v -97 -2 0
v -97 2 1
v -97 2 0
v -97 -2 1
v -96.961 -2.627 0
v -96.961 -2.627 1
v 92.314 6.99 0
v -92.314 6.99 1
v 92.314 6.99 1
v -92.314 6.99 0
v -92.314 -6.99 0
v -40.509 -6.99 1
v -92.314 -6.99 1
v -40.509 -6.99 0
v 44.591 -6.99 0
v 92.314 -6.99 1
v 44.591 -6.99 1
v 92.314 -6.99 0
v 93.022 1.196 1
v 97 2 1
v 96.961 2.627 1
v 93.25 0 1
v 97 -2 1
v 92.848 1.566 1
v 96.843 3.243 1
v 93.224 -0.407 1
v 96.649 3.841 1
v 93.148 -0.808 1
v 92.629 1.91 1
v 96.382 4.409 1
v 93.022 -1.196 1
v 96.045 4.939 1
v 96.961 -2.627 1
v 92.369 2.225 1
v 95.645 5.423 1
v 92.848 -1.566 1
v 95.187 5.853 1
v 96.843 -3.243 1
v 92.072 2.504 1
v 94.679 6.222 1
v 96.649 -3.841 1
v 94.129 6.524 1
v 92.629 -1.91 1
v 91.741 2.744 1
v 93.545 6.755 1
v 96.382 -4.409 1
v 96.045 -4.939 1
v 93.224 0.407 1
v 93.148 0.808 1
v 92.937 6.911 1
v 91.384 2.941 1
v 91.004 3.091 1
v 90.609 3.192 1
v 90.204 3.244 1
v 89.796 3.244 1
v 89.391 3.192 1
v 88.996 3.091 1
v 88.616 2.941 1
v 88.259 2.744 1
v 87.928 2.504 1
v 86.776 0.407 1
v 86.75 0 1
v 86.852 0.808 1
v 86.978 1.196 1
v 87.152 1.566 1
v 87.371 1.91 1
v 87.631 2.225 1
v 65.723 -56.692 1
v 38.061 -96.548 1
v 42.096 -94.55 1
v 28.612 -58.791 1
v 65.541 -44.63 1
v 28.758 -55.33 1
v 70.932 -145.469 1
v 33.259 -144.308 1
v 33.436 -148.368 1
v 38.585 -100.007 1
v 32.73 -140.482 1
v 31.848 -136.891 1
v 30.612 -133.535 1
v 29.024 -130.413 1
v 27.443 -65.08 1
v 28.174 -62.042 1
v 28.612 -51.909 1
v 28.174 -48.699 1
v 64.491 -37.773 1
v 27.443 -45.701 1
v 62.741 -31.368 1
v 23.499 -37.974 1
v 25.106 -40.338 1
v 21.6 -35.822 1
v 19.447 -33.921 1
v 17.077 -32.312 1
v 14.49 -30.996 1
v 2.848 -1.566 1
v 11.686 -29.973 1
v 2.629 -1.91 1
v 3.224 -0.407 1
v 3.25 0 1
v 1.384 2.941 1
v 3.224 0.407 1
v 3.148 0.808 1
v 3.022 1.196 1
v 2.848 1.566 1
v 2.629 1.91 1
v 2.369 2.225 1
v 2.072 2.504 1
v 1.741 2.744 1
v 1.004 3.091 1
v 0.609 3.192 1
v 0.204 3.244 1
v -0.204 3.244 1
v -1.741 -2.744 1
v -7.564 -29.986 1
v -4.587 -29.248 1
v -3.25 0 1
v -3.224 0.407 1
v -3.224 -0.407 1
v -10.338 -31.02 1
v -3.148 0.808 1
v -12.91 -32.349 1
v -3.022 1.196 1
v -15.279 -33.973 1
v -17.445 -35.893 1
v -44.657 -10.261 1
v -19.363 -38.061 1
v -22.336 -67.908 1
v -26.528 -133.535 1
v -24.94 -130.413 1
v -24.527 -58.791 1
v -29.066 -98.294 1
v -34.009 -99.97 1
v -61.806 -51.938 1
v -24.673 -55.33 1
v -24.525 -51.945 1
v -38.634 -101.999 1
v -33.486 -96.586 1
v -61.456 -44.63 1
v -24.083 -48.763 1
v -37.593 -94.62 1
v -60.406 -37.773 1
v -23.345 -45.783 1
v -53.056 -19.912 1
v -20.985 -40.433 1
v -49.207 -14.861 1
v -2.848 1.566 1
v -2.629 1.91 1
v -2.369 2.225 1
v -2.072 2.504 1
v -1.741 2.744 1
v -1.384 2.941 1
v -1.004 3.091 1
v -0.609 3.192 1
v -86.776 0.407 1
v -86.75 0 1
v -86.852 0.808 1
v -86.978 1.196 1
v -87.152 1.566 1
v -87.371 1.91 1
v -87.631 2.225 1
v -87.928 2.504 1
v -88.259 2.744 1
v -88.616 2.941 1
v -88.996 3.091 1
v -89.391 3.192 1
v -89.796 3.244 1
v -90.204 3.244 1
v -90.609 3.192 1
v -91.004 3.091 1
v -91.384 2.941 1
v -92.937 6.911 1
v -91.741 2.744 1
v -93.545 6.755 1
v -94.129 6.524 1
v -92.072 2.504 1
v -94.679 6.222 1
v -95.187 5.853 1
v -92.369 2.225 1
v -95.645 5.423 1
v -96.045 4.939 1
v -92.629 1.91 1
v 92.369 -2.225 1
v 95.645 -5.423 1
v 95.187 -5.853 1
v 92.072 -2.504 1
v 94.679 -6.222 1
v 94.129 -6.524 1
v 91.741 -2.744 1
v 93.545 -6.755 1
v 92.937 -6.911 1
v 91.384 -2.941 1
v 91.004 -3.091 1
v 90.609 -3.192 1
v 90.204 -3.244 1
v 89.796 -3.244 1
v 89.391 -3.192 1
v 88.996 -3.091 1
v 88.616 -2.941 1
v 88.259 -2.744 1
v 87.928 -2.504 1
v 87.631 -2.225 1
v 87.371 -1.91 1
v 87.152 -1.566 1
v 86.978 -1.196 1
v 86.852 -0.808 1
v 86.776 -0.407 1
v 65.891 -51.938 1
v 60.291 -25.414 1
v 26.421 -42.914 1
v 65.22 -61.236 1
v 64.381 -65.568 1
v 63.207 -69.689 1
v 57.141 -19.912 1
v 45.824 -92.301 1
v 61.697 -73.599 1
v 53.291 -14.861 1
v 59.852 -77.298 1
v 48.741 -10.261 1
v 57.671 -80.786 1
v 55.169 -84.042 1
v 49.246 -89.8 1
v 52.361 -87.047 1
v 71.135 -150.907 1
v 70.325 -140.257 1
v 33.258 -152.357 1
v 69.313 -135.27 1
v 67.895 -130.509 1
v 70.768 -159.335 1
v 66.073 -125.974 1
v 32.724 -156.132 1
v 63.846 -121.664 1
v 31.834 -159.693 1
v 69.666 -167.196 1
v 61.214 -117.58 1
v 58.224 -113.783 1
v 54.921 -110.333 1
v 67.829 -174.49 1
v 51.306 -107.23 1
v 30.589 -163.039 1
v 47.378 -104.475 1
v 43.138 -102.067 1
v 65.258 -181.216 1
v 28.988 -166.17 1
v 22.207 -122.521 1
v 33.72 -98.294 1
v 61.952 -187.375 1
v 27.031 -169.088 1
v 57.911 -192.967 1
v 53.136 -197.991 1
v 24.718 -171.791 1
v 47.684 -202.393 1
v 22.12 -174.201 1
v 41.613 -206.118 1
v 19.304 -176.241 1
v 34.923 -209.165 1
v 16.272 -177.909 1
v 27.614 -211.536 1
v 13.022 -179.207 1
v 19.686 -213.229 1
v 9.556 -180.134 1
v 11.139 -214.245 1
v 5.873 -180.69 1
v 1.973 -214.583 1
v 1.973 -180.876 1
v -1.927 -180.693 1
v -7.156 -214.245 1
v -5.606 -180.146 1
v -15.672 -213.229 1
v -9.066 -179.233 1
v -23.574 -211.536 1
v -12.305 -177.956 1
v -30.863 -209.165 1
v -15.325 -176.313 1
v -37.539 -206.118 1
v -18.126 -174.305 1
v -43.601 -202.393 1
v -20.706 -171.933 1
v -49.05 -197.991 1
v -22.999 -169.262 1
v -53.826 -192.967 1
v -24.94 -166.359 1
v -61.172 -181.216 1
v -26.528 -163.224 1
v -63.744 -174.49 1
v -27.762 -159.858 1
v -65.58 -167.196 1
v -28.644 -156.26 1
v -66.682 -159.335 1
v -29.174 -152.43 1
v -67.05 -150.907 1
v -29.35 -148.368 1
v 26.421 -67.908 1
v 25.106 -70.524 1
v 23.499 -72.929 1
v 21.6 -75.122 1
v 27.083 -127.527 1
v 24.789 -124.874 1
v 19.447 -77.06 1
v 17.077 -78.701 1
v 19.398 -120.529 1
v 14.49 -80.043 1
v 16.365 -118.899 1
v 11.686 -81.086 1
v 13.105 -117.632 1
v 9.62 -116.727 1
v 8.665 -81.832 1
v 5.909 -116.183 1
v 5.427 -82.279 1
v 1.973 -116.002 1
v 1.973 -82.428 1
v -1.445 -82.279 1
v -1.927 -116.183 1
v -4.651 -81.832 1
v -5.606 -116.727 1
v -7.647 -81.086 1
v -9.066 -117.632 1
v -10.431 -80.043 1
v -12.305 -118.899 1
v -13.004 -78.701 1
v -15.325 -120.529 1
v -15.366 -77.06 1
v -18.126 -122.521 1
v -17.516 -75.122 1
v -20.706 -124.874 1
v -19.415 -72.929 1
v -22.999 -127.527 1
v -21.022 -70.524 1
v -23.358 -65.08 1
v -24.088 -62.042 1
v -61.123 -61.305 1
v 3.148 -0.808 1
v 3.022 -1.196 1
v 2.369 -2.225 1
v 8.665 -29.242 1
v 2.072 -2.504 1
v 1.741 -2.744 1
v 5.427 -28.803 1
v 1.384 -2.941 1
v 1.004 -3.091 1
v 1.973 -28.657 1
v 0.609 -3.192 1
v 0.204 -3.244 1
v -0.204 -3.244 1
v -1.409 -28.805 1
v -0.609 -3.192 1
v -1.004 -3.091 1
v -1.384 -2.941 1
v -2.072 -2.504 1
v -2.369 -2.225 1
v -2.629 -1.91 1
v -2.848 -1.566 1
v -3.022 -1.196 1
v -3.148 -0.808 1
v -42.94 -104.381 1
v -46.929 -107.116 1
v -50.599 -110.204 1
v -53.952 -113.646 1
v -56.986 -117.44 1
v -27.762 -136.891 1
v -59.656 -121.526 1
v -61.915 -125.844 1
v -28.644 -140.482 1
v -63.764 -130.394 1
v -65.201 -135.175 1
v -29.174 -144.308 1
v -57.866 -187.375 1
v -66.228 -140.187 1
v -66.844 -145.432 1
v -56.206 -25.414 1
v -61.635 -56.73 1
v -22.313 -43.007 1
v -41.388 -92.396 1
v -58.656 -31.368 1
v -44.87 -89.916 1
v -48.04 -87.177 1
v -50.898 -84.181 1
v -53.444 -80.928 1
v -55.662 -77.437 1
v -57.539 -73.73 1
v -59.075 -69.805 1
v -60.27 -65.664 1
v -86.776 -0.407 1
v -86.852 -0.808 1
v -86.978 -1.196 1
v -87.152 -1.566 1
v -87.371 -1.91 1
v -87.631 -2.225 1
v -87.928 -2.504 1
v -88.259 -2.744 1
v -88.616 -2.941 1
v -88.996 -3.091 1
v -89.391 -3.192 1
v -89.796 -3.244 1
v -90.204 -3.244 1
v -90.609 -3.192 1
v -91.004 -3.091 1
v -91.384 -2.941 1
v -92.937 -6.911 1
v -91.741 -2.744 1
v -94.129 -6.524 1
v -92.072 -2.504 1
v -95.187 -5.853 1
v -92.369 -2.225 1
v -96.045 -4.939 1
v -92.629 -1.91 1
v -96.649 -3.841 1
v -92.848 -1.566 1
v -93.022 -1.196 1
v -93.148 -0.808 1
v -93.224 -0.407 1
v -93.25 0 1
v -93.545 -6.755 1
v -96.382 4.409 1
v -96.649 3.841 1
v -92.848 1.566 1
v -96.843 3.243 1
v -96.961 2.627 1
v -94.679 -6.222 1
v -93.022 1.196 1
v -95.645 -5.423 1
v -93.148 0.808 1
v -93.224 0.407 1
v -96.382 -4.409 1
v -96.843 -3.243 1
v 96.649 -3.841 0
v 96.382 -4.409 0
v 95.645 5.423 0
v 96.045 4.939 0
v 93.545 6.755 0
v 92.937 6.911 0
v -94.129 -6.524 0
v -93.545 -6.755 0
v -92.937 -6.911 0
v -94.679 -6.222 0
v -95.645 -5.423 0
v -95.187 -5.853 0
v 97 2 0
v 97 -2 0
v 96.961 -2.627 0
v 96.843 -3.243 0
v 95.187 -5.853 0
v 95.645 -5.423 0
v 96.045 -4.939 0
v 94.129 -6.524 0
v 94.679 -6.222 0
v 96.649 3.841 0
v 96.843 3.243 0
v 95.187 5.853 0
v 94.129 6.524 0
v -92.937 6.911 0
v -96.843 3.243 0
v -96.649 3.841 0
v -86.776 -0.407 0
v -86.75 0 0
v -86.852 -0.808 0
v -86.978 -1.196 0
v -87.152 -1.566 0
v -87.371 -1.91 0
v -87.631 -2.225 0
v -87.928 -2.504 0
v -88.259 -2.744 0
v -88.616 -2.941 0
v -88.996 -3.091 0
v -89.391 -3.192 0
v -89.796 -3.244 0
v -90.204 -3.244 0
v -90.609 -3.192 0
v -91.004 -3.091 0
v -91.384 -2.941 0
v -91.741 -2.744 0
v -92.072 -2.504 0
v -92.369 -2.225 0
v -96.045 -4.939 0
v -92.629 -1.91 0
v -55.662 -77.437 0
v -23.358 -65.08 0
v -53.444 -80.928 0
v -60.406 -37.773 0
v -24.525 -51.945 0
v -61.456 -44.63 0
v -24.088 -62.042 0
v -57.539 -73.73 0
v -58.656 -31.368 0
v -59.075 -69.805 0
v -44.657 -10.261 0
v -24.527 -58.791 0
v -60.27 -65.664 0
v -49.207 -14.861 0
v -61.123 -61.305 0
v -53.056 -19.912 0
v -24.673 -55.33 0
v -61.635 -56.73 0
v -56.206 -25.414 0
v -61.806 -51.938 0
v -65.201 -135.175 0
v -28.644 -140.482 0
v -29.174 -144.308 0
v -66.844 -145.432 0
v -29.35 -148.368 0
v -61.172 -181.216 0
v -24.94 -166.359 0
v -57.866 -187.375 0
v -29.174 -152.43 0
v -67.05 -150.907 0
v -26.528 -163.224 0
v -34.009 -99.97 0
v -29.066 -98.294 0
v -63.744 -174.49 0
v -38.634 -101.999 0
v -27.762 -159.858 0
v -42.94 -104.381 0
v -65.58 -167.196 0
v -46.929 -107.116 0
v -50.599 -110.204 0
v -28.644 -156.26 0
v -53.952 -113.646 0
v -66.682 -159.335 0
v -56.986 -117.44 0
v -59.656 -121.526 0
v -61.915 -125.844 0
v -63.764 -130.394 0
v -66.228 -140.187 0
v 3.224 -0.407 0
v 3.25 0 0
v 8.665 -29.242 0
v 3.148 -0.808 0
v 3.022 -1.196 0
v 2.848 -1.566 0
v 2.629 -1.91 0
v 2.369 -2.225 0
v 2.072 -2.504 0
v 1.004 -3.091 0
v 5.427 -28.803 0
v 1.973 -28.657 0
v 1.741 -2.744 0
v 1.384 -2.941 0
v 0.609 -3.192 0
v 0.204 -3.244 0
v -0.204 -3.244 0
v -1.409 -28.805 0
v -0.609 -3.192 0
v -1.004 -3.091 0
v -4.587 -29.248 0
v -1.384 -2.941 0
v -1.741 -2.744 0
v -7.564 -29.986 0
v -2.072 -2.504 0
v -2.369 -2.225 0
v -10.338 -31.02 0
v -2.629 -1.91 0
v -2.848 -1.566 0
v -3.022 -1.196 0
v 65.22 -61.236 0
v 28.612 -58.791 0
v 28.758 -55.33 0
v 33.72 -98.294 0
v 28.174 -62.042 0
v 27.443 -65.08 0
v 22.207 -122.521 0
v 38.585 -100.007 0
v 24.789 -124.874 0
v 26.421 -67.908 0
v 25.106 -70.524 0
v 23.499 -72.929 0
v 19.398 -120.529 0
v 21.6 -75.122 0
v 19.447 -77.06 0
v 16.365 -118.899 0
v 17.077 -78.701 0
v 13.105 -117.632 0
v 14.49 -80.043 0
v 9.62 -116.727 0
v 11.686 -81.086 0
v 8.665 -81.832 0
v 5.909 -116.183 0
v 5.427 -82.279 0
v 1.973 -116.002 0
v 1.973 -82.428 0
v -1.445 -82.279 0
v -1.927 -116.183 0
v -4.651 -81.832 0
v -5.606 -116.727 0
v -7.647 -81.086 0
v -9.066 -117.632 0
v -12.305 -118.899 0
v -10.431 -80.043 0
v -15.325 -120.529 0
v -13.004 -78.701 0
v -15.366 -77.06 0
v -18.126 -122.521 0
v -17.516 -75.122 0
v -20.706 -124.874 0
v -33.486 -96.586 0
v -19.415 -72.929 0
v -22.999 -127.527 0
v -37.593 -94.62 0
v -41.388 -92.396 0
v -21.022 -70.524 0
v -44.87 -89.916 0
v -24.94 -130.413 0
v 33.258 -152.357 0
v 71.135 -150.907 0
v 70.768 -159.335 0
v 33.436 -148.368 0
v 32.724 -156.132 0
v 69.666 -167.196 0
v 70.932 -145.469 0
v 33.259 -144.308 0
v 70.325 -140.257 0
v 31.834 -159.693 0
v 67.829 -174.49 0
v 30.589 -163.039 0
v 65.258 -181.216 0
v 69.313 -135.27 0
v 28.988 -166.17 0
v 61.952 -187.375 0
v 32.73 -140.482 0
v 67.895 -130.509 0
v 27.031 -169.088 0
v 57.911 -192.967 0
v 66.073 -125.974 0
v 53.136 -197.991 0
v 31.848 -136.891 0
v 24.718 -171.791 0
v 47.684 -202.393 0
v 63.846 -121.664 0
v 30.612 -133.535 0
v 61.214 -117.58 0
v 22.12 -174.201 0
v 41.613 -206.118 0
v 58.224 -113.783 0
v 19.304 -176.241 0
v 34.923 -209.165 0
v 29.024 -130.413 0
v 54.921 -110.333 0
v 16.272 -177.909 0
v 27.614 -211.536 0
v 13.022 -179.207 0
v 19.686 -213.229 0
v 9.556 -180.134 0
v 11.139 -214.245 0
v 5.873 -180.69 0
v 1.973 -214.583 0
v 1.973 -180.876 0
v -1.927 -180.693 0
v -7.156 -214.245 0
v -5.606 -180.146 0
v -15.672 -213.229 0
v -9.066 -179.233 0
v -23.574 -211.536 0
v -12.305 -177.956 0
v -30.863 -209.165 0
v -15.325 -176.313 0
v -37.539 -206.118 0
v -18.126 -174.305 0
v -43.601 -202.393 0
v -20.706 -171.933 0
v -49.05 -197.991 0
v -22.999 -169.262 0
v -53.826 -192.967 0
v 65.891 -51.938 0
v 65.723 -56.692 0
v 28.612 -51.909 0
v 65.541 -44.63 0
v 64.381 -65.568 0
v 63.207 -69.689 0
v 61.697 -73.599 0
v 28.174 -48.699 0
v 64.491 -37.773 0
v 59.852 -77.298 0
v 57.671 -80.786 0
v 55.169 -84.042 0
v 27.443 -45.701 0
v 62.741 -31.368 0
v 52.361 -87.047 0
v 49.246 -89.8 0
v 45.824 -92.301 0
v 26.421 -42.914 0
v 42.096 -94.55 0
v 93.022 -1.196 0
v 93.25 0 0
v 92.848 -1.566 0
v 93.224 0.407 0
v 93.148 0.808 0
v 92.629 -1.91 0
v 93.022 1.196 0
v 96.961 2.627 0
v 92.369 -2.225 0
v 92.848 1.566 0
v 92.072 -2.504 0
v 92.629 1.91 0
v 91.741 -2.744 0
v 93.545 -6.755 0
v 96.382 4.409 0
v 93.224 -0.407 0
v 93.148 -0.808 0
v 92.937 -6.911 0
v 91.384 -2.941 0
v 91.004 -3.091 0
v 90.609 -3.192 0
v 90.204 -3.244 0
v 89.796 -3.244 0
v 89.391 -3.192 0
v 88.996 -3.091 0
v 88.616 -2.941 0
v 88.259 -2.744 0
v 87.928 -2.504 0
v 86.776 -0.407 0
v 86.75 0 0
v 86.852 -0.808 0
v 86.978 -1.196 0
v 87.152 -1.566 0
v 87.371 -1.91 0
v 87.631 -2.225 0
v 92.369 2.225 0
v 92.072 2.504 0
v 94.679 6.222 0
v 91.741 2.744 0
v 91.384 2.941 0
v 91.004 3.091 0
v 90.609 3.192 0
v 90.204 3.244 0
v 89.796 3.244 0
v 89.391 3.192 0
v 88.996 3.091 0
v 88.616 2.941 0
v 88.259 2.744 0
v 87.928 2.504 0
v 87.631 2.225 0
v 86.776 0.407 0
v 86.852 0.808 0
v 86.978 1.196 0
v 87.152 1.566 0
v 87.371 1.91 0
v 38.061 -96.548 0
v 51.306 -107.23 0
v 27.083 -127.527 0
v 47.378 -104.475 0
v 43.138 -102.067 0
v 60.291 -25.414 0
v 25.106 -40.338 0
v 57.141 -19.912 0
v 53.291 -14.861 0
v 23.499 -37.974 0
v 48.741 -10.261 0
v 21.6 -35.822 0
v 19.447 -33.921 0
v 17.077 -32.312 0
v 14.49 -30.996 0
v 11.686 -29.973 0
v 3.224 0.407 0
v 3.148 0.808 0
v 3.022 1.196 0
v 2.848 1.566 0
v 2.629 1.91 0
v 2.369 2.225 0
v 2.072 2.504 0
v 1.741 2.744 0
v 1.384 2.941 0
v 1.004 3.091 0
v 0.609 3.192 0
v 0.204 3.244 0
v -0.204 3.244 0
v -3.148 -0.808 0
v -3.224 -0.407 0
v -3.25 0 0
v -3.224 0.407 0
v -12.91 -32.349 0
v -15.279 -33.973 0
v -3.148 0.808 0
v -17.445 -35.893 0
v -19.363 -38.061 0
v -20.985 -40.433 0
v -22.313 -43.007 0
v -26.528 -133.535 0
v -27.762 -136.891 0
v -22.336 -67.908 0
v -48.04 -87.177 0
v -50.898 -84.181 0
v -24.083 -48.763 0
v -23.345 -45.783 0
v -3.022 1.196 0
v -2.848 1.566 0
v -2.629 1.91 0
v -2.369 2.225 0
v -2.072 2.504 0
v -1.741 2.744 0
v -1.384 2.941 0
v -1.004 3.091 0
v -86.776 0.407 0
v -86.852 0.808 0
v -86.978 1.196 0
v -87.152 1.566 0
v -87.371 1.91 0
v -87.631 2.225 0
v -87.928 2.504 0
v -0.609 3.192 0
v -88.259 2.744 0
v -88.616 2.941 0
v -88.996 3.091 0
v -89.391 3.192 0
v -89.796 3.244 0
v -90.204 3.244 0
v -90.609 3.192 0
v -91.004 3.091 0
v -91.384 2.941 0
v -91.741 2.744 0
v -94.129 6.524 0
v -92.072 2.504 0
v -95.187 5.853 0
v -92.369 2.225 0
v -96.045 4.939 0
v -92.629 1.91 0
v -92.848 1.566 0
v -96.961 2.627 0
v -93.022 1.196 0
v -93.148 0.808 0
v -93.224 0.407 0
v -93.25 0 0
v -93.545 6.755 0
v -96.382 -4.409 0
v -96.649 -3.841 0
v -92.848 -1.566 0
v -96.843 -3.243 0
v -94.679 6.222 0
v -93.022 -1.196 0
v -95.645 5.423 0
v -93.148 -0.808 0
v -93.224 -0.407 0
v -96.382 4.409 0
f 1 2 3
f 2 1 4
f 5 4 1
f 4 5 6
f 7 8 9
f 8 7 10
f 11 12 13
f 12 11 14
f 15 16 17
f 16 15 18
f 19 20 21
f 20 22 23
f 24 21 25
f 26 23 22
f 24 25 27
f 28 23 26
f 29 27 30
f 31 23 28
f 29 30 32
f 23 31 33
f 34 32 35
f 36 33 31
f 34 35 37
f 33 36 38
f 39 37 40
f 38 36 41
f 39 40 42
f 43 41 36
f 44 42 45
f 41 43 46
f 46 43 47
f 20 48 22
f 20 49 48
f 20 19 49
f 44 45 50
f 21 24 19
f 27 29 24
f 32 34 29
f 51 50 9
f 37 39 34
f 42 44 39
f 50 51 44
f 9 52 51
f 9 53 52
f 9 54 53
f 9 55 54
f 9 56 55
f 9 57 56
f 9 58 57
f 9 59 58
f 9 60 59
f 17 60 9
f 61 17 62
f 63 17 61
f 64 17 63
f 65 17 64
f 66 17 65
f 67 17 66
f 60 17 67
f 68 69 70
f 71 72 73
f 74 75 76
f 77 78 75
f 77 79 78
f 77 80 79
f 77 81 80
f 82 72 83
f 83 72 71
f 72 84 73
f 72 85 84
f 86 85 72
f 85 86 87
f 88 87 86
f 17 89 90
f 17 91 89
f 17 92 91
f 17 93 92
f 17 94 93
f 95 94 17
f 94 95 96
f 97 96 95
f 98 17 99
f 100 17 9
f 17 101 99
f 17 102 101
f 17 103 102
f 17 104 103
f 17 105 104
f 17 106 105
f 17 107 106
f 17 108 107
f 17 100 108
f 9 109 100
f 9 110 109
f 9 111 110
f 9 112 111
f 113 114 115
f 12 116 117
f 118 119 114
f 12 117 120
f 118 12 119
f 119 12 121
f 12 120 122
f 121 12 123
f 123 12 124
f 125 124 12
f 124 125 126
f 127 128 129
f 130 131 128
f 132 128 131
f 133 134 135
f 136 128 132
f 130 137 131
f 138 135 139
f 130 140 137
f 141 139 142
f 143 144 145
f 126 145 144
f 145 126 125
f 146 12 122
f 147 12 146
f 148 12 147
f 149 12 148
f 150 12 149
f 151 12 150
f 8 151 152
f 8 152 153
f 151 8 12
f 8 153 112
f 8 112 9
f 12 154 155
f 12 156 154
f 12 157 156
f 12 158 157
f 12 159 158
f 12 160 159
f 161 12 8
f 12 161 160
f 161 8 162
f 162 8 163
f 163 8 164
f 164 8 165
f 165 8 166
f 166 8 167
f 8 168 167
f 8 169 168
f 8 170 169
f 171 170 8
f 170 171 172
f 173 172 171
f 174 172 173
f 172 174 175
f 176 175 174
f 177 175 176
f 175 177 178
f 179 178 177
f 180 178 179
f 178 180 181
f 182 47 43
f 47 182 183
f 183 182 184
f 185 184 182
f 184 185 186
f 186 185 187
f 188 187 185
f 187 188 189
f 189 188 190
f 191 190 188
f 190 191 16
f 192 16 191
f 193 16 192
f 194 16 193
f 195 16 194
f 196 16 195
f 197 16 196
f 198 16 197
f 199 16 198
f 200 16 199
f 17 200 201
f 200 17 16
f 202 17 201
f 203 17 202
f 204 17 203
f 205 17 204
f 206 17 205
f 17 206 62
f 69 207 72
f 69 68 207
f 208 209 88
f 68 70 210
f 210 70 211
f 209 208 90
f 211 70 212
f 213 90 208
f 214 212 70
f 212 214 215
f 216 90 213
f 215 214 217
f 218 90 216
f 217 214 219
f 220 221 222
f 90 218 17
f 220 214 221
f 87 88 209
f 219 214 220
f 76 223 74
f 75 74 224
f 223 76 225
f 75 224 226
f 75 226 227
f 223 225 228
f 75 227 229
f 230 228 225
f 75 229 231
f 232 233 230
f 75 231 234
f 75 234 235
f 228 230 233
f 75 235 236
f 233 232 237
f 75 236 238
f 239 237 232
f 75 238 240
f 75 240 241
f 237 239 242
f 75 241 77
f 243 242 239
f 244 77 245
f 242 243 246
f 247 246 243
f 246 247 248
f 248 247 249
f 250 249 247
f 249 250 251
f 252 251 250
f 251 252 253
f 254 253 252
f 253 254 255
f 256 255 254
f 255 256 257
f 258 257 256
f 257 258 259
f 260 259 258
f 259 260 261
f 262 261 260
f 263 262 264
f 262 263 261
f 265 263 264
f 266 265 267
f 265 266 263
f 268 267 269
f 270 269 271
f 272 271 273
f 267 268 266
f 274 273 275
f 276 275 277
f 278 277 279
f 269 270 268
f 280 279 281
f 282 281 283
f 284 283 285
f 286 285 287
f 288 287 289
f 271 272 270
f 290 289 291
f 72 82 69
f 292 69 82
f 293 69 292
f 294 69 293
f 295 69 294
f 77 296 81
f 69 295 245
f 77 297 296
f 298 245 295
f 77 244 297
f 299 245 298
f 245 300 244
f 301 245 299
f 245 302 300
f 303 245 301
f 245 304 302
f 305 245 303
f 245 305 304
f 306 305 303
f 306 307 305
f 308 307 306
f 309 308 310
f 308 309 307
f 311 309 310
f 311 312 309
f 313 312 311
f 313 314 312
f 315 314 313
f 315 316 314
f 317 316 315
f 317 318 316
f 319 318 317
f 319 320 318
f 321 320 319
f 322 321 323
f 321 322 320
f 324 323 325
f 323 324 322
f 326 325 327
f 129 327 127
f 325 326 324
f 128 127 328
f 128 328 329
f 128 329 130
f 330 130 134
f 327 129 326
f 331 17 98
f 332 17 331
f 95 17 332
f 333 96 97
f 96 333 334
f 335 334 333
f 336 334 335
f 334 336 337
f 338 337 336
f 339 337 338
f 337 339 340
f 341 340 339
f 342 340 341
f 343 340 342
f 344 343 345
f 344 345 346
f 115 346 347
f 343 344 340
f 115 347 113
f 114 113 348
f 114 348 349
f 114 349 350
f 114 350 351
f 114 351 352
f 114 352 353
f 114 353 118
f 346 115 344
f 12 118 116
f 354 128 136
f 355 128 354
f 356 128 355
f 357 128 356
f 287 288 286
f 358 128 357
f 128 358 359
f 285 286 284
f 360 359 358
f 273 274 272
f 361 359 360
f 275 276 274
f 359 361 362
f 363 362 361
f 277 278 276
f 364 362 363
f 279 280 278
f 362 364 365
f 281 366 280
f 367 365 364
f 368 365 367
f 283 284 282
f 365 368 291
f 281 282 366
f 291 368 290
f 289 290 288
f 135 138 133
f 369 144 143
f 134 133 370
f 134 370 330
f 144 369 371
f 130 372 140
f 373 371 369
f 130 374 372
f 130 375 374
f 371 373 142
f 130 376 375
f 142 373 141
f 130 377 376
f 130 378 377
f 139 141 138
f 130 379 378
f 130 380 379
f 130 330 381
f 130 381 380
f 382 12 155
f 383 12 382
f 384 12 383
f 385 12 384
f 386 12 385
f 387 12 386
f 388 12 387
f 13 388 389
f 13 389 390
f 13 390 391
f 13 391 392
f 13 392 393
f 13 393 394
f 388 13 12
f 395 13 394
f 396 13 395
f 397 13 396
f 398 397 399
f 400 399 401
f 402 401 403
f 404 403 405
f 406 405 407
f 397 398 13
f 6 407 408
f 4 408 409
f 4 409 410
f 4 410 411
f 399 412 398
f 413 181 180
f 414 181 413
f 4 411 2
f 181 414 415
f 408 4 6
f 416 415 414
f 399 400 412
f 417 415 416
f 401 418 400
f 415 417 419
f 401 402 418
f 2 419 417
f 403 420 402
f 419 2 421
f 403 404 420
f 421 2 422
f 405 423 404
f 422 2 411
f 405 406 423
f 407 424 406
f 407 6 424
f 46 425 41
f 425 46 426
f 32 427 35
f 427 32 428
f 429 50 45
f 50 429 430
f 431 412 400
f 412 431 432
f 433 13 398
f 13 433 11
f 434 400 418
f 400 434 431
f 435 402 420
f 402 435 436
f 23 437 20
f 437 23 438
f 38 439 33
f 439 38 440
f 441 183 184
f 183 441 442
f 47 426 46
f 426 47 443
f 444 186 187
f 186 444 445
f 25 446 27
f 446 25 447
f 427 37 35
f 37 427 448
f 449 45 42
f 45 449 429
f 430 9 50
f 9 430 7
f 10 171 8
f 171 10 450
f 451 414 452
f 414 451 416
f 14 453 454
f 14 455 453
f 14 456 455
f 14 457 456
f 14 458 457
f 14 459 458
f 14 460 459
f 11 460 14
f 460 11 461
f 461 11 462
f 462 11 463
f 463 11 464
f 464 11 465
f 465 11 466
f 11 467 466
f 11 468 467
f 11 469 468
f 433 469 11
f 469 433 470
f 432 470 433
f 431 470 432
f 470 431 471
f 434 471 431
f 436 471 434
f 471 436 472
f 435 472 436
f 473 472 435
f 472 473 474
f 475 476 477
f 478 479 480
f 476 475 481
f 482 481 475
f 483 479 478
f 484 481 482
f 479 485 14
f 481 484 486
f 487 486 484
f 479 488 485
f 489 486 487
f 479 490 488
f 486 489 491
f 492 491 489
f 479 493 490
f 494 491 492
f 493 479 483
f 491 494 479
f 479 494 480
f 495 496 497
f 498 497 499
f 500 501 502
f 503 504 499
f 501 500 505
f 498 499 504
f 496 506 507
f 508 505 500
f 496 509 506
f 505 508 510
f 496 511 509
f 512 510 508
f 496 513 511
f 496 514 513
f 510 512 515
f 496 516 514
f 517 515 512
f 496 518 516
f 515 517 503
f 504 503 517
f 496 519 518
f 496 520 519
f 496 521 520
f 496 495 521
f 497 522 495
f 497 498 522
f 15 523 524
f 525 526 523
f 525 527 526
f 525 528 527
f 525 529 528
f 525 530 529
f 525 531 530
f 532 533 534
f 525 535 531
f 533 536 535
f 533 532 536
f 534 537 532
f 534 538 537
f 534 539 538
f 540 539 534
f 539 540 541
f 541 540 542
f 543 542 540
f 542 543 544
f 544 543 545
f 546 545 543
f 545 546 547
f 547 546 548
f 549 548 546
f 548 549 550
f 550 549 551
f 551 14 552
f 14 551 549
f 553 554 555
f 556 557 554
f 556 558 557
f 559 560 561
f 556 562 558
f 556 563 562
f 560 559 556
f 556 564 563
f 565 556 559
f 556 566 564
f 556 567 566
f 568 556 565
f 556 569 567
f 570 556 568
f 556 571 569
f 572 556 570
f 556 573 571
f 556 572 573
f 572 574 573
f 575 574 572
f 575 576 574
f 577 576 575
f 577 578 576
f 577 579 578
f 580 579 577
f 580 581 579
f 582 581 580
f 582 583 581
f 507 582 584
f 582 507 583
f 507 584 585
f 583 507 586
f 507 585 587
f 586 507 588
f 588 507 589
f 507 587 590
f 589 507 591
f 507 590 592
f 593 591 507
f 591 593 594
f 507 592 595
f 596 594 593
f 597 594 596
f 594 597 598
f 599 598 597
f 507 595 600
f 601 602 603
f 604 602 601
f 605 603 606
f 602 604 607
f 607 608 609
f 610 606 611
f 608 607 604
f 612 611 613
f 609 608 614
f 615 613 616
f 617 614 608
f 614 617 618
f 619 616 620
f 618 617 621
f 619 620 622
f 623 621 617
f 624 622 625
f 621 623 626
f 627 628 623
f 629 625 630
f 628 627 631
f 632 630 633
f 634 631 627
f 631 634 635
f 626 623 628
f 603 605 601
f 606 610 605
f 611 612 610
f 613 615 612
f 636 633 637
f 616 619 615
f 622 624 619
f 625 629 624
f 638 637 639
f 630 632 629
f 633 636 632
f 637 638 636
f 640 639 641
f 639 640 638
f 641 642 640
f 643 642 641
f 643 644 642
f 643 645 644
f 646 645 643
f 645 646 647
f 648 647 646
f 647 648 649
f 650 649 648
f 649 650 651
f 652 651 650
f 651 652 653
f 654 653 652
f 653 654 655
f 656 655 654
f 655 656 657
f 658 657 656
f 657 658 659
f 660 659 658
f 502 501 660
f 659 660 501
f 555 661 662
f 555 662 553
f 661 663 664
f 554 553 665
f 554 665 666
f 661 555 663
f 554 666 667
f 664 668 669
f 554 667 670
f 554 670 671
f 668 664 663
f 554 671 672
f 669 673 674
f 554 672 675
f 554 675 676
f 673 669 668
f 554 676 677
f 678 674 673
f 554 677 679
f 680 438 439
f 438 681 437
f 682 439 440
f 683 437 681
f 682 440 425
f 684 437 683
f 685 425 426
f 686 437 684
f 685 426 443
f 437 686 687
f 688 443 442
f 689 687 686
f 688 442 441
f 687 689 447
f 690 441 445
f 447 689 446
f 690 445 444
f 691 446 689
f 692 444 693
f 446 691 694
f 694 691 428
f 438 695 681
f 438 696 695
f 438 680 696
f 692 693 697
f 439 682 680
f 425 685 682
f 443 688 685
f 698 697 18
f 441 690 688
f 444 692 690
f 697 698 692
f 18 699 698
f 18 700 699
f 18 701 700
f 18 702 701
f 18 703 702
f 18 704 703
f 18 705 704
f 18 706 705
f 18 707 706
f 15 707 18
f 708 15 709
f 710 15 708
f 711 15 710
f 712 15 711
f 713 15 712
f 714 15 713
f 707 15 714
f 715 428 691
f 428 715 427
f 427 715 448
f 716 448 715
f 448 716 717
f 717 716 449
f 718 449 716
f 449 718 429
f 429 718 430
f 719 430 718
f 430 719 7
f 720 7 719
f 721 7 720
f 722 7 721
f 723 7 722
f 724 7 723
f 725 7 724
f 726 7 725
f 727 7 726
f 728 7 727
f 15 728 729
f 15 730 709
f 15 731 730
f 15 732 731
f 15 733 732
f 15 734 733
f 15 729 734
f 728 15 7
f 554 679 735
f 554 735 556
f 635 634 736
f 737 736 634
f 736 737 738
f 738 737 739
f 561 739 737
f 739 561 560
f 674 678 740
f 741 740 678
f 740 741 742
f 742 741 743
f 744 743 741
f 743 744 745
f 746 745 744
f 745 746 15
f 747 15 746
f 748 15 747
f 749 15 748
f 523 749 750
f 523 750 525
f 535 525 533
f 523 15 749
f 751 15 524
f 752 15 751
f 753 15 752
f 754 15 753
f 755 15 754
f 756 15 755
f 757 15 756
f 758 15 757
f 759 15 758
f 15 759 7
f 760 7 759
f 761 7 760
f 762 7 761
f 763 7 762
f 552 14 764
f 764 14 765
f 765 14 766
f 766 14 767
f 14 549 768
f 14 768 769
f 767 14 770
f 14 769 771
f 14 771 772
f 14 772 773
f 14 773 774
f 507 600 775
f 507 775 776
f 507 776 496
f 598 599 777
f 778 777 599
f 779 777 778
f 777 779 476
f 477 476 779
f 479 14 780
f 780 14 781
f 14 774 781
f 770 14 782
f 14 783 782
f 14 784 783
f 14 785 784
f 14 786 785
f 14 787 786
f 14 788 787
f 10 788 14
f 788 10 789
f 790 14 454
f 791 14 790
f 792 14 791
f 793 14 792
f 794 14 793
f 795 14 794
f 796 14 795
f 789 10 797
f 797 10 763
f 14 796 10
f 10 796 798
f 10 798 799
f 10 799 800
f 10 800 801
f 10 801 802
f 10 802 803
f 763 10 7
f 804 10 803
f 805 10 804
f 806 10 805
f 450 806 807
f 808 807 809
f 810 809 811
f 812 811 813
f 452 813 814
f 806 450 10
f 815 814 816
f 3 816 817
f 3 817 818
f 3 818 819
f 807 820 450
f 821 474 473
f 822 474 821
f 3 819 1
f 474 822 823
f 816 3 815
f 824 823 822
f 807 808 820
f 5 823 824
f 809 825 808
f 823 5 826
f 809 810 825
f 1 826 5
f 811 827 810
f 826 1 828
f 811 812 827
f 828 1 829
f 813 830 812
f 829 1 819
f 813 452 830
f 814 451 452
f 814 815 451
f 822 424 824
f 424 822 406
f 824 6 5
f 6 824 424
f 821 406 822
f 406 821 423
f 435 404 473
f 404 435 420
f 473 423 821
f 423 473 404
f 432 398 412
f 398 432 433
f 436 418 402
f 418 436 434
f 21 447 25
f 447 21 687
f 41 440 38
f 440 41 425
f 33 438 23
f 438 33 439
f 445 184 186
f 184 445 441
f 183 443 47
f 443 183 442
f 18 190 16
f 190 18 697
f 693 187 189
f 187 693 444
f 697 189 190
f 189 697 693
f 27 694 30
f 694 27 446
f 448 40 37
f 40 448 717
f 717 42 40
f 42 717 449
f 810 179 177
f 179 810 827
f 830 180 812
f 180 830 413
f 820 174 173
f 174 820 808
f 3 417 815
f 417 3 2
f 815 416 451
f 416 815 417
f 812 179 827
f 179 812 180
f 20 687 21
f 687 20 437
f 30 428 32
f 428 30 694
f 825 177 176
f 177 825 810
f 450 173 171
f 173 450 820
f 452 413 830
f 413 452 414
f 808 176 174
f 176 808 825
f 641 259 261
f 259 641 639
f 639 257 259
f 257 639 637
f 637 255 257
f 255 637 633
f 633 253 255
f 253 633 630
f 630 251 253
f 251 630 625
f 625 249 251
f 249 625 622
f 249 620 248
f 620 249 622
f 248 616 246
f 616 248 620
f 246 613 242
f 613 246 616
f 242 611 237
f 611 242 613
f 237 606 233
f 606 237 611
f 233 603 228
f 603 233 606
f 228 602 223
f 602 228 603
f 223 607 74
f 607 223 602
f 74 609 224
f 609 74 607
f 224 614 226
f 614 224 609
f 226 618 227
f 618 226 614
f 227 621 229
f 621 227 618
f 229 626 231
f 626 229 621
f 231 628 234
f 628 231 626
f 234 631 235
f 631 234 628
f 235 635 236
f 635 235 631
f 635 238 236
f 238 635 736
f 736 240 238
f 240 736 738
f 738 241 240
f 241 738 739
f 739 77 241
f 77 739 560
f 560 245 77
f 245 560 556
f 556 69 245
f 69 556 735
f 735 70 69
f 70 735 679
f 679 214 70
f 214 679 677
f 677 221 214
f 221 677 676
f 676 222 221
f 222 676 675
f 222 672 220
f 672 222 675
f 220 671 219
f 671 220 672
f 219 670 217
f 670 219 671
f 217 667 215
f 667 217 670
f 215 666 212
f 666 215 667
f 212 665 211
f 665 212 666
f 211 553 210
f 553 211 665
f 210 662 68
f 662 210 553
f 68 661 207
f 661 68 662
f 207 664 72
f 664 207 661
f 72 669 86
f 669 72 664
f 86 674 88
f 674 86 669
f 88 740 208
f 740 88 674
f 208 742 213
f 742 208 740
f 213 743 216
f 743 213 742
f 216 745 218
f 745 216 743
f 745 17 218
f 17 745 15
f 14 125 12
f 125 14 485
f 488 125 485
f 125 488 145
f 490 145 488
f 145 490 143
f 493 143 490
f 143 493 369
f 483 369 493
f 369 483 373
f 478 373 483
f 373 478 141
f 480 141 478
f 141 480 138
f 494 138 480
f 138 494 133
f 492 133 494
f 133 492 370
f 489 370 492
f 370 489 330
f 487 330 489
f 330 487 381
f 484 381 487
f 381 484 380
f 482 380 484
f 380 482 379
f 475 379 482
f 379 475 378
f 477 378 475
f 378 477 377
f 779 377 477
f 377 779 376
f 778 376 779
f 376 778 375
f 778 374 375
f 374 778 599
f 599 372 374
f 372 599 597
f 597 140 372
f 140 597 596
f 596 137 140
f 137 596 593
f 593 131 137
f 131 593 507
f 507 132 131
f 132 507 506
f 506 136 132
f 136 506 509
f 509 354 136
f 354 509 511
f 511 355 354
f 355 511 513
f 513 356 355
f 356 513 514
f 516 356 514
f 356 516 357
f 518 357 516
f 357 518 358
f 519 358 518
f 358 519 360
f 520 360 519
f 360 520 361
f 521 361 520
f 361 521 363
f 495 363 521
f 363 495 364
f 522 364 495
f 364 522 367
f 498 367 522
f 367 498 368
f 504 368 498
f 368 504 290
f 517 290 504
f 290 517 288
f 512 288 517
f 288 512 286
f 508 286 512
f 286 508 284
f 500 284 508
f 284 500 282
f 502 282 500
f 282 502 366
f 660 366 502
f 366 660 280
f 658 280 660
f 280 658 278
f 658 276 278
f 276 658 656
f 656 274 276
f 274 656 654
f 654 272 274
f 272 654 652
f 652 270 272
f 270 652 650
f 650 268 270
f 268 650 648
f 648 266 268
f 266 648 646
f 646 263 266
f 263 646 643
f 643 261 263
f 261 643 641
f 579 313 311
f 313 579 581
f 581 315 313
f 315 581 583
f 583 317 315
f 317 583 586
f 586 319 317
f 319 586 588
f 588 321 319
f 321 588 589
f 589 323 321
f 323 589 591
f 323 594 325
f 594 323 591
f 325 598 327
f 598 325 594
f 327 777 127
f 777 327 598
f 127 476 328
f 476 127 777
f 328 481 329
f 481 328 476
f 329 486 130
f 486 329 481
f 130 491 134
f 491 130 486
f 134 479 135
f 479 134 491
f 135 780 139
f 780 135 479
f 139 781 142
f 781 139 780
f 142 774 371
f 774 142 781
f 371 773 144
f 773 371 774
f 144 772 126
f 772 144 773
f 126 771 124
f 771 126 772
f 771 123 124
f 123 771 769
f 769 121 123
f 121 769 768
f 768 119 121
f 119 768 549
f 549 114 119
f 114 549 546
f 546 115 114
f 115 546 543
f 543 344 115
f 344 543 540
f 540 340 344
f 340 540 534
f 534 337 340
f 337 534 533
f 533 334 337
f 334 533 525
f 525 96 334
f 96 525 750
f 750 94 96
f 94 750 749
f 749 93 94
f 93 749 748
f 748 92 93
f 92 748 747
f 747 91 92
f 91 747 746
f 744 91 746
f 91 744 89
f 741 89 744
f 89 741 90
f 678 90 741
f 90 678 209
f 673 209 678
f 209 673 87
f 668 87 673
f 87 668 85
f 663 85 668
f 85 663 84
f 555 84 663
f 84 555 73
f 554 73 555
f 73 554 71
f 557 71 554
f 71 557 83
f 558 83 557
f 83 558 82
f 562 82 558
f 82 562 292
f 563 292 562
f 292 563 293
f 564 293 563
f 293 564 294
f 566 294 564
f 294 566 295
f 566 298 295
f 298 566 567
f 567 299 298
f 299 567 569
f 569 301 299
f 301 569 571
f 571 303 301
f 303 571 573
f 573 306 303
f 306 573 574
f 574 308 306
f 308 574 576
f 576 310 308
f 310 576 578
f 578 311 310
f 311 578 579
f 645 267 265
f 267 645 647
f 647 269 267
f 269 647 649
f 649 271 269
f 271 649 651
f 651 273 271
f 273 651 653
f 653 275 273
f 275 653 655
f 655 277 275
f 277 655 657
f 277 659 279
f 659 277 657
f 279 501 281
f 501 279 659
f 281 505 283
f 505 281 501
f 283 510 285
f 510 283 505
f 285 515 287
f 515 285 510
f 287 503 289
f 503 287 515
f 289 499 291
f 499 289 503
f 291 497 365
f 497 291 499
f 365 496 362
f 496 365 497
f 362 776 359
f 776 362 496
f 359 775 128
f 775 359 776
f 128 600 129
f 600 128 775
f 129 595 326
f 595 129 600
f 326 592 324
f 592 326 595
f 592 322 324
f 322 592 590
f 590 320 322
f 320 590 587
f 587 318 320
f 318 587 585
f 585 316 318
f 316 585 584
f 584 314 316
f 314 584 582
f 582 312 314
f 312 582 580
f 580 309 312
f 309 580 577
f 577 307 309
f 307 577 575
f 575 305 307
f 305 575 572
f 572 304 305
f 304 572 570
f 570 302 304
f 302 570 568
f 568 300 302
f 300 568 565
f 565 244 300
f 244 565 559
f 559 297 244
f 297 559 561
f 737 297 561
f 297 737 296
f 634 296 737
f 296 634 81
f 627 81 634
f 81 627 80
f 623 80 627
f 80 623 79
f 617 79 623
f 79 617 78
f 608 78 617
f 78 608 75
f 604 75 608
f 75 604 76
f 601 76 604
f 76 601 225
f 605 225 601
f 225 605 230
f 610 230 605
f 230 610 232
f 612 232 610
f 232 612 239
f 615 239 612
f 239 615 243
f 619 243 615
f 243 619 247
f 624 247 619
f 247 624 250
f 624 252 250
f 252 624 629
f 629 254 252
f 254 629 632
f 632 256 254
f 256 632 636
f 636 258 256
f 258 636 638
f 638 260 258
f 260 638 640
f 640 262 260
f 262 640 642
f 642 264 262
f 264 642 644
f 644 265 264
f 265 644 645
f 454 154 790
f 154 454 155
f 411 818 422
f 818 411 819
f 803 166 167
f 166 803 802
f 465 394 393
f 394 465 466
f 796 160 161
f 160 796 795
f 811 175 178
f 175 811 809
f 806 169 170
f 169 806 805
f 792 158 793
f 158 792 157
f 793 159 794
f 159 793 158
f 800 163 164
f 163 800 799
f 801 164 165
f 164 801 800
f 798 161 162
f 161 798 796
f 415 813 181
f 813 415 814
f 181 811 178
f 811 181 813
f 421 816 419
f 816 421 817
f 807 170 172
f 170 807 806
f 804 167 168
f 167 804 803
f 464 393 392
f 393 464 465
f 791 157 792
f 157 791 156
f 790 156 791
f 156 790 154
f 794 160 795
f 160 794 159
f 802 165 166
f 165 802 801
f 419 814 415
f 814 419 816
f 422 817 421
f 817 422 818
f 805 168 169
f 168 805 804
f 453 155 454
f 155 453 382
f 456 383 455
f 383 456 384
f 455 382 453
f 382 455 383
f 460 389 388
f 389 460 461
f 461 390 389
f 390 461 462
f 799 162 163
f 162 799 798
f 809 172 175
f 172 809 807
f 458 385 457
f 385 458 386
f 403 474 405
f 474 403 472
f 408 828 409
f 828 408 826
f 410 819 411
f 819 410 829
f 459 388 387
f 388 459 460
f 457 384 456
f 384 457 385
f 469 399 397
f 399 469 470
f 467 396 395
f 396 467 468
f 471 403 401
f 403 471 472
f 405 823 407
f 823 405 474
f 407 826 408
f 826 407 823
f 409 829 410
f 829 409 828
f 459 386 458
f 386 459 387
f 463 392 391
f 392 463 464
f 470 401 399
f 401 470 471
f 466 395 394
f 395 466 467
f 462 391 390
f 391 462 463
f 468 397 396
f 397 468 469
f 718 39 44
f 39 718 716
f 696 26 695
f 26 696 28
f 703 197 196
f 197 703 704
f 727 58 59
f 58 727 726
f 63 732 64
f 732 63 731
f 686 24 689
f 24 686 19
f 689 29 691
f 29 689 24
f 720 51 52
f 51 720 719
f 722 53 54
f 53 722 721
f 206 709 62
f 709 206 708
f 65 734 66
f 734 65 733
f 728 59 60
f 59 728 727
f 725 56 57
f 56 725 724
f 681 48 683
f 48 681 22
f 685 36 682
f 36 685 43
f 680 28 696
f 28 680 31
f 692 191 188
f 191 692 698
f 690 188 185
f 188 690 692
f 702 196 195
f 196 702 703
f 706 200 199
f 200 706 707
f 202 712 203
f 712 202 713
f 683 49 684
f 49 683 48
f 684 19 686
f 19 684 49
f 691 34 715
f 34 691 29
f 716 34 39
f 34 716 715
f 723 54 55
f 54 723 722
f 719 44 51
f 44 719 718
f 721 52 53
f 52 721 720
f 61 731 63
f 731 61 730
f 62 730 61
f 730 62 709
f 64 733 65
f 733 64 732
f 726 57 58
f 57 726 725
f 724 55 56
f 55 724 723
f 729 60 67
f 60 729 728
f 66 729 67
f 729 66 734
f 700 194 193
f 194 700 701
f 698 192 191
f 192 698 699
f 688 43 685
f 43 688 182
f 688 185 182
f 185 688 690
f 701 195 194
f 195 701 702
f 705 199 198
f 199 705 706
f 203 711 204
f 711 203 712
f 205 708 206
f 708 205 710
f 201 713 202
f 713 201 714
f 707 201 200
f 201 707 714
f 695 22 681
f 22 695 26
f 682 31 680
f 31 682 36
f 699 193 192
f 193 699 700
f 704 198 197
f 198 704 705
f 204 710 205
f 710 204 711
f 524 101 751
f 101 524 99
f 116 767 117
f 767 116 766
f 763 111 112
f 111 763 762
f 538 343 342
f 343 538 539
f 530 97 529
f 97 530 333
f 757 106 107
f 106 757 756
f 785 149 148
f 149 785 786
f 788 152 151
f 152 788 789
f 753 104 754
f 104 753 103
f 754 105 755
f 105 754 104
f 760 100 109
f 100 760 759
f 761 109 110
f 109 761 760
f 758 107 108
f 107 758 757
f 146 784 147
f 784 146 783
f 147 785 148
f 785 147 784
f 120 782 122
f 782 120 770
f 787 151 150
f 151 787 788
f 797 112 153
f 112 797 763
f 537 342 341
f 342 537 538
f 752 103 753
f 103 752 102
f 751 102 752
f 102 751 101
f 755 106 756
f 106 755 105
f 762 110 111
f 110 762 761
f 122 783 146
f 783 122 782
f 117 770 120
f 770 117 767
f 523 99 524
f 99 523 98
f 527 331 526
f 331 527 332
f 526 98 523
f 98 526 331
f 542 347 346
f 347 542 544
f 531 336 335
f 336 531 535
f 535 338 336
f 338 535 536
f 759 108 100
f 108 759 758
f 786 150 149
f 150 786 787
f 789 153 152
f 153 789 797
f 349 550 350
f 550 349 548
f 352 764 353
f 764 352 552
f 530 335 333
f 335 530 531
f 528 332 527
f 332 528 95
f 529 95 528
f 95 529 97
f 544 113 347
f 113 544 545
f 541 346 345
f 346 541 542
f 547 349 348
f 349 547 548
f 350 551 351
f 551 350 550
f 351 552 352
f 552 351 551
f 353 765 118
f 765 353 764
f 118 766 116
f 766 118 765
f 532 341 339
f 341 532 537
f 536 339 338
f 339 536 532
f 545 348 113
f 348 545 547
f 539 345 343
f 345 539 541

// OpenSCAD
$fn = 50;


difference() {
	union() {
		translate(v = [0, 0, 0]) {
			rotate(a = [0, 0, 0]) {
				hull() {
					translate(v = [-92.0000000000, 2.0000000000, 0]) {
						rotate(a = [0, 0, 0]) {
							translate(v = [0, 0, 0]) {
								rotate(a = [0, 0, 0]) {
									cylinder(h = 1, r = 5);
								}
							}
						}
					}
					translate(v = [92.0000000000, 2.0000000000, 0]) {
						rotate(a = [0, 0, 0]) {
							translate(v = [0, 0, 0]) {
								rotate(a = [0, 0, 0]) {
									cylinder(h = 1, r = 5);
								}
							}
						}
					}
					translate(v = [-92.0000000000, -2.0000000000, 0]) {
						rotate(a = [0, 0, 0]) {
							translate(v = [0, 0, 0]) {
								rotate(a = [0, 0, 0]) {
									cylinder(h = 1, r = 5);
								}
							}
						}
					}
					translate(v = [92.0000000000, -2.0000000000, 0]) {
						rotate(a = [0, 0, 0]) {
							translate(v = [0, 0, 0]) {
								rotate(a = [0, 0, 0]) {
									cylinder(h = 1, r = 5);
								}
							}
						}
					}
				}
			}
		}
		translate(v = [0, 0, 0]) {
			rotate(a = [0, 0, 0]) {
				linear_extrude(height = 1) {
					text(font = "DejaVu Sans Mono:style=Bold", halign = "center", size = 209.0000000000, text = "8", valign = "top");
				}
			}
		}
	}
	union() {
		translate(v = [-90.0000000000, 0.0000000000, -125.0000000000]) {
			rotate(a = [0, 0, 0]) {
				cylinder(h = 250, r = 3.2500000000);
			}
		}
		translate(v = [90.0000000000, 0.0000000000, -125.0000000000]) {
			rotate(a = [0, 0, 0]) {
				cylinder(h = 250, r = 3.2500000000);
			}
		}
		translate(v = [90.0000000000, 0.0000000000, -125.0000000000]) {
			rotate(a = [0, 0, 0]) {
				cylinder(h = 250, r = 3.2500000000);
			}
		}
		translate(v = [0, 0, -125.0000000000]) {
			rotate(a = [0, 0, 0]) {
				cylinder(h = 250, r = 3.2500000000);
			}
		}
	}
}
